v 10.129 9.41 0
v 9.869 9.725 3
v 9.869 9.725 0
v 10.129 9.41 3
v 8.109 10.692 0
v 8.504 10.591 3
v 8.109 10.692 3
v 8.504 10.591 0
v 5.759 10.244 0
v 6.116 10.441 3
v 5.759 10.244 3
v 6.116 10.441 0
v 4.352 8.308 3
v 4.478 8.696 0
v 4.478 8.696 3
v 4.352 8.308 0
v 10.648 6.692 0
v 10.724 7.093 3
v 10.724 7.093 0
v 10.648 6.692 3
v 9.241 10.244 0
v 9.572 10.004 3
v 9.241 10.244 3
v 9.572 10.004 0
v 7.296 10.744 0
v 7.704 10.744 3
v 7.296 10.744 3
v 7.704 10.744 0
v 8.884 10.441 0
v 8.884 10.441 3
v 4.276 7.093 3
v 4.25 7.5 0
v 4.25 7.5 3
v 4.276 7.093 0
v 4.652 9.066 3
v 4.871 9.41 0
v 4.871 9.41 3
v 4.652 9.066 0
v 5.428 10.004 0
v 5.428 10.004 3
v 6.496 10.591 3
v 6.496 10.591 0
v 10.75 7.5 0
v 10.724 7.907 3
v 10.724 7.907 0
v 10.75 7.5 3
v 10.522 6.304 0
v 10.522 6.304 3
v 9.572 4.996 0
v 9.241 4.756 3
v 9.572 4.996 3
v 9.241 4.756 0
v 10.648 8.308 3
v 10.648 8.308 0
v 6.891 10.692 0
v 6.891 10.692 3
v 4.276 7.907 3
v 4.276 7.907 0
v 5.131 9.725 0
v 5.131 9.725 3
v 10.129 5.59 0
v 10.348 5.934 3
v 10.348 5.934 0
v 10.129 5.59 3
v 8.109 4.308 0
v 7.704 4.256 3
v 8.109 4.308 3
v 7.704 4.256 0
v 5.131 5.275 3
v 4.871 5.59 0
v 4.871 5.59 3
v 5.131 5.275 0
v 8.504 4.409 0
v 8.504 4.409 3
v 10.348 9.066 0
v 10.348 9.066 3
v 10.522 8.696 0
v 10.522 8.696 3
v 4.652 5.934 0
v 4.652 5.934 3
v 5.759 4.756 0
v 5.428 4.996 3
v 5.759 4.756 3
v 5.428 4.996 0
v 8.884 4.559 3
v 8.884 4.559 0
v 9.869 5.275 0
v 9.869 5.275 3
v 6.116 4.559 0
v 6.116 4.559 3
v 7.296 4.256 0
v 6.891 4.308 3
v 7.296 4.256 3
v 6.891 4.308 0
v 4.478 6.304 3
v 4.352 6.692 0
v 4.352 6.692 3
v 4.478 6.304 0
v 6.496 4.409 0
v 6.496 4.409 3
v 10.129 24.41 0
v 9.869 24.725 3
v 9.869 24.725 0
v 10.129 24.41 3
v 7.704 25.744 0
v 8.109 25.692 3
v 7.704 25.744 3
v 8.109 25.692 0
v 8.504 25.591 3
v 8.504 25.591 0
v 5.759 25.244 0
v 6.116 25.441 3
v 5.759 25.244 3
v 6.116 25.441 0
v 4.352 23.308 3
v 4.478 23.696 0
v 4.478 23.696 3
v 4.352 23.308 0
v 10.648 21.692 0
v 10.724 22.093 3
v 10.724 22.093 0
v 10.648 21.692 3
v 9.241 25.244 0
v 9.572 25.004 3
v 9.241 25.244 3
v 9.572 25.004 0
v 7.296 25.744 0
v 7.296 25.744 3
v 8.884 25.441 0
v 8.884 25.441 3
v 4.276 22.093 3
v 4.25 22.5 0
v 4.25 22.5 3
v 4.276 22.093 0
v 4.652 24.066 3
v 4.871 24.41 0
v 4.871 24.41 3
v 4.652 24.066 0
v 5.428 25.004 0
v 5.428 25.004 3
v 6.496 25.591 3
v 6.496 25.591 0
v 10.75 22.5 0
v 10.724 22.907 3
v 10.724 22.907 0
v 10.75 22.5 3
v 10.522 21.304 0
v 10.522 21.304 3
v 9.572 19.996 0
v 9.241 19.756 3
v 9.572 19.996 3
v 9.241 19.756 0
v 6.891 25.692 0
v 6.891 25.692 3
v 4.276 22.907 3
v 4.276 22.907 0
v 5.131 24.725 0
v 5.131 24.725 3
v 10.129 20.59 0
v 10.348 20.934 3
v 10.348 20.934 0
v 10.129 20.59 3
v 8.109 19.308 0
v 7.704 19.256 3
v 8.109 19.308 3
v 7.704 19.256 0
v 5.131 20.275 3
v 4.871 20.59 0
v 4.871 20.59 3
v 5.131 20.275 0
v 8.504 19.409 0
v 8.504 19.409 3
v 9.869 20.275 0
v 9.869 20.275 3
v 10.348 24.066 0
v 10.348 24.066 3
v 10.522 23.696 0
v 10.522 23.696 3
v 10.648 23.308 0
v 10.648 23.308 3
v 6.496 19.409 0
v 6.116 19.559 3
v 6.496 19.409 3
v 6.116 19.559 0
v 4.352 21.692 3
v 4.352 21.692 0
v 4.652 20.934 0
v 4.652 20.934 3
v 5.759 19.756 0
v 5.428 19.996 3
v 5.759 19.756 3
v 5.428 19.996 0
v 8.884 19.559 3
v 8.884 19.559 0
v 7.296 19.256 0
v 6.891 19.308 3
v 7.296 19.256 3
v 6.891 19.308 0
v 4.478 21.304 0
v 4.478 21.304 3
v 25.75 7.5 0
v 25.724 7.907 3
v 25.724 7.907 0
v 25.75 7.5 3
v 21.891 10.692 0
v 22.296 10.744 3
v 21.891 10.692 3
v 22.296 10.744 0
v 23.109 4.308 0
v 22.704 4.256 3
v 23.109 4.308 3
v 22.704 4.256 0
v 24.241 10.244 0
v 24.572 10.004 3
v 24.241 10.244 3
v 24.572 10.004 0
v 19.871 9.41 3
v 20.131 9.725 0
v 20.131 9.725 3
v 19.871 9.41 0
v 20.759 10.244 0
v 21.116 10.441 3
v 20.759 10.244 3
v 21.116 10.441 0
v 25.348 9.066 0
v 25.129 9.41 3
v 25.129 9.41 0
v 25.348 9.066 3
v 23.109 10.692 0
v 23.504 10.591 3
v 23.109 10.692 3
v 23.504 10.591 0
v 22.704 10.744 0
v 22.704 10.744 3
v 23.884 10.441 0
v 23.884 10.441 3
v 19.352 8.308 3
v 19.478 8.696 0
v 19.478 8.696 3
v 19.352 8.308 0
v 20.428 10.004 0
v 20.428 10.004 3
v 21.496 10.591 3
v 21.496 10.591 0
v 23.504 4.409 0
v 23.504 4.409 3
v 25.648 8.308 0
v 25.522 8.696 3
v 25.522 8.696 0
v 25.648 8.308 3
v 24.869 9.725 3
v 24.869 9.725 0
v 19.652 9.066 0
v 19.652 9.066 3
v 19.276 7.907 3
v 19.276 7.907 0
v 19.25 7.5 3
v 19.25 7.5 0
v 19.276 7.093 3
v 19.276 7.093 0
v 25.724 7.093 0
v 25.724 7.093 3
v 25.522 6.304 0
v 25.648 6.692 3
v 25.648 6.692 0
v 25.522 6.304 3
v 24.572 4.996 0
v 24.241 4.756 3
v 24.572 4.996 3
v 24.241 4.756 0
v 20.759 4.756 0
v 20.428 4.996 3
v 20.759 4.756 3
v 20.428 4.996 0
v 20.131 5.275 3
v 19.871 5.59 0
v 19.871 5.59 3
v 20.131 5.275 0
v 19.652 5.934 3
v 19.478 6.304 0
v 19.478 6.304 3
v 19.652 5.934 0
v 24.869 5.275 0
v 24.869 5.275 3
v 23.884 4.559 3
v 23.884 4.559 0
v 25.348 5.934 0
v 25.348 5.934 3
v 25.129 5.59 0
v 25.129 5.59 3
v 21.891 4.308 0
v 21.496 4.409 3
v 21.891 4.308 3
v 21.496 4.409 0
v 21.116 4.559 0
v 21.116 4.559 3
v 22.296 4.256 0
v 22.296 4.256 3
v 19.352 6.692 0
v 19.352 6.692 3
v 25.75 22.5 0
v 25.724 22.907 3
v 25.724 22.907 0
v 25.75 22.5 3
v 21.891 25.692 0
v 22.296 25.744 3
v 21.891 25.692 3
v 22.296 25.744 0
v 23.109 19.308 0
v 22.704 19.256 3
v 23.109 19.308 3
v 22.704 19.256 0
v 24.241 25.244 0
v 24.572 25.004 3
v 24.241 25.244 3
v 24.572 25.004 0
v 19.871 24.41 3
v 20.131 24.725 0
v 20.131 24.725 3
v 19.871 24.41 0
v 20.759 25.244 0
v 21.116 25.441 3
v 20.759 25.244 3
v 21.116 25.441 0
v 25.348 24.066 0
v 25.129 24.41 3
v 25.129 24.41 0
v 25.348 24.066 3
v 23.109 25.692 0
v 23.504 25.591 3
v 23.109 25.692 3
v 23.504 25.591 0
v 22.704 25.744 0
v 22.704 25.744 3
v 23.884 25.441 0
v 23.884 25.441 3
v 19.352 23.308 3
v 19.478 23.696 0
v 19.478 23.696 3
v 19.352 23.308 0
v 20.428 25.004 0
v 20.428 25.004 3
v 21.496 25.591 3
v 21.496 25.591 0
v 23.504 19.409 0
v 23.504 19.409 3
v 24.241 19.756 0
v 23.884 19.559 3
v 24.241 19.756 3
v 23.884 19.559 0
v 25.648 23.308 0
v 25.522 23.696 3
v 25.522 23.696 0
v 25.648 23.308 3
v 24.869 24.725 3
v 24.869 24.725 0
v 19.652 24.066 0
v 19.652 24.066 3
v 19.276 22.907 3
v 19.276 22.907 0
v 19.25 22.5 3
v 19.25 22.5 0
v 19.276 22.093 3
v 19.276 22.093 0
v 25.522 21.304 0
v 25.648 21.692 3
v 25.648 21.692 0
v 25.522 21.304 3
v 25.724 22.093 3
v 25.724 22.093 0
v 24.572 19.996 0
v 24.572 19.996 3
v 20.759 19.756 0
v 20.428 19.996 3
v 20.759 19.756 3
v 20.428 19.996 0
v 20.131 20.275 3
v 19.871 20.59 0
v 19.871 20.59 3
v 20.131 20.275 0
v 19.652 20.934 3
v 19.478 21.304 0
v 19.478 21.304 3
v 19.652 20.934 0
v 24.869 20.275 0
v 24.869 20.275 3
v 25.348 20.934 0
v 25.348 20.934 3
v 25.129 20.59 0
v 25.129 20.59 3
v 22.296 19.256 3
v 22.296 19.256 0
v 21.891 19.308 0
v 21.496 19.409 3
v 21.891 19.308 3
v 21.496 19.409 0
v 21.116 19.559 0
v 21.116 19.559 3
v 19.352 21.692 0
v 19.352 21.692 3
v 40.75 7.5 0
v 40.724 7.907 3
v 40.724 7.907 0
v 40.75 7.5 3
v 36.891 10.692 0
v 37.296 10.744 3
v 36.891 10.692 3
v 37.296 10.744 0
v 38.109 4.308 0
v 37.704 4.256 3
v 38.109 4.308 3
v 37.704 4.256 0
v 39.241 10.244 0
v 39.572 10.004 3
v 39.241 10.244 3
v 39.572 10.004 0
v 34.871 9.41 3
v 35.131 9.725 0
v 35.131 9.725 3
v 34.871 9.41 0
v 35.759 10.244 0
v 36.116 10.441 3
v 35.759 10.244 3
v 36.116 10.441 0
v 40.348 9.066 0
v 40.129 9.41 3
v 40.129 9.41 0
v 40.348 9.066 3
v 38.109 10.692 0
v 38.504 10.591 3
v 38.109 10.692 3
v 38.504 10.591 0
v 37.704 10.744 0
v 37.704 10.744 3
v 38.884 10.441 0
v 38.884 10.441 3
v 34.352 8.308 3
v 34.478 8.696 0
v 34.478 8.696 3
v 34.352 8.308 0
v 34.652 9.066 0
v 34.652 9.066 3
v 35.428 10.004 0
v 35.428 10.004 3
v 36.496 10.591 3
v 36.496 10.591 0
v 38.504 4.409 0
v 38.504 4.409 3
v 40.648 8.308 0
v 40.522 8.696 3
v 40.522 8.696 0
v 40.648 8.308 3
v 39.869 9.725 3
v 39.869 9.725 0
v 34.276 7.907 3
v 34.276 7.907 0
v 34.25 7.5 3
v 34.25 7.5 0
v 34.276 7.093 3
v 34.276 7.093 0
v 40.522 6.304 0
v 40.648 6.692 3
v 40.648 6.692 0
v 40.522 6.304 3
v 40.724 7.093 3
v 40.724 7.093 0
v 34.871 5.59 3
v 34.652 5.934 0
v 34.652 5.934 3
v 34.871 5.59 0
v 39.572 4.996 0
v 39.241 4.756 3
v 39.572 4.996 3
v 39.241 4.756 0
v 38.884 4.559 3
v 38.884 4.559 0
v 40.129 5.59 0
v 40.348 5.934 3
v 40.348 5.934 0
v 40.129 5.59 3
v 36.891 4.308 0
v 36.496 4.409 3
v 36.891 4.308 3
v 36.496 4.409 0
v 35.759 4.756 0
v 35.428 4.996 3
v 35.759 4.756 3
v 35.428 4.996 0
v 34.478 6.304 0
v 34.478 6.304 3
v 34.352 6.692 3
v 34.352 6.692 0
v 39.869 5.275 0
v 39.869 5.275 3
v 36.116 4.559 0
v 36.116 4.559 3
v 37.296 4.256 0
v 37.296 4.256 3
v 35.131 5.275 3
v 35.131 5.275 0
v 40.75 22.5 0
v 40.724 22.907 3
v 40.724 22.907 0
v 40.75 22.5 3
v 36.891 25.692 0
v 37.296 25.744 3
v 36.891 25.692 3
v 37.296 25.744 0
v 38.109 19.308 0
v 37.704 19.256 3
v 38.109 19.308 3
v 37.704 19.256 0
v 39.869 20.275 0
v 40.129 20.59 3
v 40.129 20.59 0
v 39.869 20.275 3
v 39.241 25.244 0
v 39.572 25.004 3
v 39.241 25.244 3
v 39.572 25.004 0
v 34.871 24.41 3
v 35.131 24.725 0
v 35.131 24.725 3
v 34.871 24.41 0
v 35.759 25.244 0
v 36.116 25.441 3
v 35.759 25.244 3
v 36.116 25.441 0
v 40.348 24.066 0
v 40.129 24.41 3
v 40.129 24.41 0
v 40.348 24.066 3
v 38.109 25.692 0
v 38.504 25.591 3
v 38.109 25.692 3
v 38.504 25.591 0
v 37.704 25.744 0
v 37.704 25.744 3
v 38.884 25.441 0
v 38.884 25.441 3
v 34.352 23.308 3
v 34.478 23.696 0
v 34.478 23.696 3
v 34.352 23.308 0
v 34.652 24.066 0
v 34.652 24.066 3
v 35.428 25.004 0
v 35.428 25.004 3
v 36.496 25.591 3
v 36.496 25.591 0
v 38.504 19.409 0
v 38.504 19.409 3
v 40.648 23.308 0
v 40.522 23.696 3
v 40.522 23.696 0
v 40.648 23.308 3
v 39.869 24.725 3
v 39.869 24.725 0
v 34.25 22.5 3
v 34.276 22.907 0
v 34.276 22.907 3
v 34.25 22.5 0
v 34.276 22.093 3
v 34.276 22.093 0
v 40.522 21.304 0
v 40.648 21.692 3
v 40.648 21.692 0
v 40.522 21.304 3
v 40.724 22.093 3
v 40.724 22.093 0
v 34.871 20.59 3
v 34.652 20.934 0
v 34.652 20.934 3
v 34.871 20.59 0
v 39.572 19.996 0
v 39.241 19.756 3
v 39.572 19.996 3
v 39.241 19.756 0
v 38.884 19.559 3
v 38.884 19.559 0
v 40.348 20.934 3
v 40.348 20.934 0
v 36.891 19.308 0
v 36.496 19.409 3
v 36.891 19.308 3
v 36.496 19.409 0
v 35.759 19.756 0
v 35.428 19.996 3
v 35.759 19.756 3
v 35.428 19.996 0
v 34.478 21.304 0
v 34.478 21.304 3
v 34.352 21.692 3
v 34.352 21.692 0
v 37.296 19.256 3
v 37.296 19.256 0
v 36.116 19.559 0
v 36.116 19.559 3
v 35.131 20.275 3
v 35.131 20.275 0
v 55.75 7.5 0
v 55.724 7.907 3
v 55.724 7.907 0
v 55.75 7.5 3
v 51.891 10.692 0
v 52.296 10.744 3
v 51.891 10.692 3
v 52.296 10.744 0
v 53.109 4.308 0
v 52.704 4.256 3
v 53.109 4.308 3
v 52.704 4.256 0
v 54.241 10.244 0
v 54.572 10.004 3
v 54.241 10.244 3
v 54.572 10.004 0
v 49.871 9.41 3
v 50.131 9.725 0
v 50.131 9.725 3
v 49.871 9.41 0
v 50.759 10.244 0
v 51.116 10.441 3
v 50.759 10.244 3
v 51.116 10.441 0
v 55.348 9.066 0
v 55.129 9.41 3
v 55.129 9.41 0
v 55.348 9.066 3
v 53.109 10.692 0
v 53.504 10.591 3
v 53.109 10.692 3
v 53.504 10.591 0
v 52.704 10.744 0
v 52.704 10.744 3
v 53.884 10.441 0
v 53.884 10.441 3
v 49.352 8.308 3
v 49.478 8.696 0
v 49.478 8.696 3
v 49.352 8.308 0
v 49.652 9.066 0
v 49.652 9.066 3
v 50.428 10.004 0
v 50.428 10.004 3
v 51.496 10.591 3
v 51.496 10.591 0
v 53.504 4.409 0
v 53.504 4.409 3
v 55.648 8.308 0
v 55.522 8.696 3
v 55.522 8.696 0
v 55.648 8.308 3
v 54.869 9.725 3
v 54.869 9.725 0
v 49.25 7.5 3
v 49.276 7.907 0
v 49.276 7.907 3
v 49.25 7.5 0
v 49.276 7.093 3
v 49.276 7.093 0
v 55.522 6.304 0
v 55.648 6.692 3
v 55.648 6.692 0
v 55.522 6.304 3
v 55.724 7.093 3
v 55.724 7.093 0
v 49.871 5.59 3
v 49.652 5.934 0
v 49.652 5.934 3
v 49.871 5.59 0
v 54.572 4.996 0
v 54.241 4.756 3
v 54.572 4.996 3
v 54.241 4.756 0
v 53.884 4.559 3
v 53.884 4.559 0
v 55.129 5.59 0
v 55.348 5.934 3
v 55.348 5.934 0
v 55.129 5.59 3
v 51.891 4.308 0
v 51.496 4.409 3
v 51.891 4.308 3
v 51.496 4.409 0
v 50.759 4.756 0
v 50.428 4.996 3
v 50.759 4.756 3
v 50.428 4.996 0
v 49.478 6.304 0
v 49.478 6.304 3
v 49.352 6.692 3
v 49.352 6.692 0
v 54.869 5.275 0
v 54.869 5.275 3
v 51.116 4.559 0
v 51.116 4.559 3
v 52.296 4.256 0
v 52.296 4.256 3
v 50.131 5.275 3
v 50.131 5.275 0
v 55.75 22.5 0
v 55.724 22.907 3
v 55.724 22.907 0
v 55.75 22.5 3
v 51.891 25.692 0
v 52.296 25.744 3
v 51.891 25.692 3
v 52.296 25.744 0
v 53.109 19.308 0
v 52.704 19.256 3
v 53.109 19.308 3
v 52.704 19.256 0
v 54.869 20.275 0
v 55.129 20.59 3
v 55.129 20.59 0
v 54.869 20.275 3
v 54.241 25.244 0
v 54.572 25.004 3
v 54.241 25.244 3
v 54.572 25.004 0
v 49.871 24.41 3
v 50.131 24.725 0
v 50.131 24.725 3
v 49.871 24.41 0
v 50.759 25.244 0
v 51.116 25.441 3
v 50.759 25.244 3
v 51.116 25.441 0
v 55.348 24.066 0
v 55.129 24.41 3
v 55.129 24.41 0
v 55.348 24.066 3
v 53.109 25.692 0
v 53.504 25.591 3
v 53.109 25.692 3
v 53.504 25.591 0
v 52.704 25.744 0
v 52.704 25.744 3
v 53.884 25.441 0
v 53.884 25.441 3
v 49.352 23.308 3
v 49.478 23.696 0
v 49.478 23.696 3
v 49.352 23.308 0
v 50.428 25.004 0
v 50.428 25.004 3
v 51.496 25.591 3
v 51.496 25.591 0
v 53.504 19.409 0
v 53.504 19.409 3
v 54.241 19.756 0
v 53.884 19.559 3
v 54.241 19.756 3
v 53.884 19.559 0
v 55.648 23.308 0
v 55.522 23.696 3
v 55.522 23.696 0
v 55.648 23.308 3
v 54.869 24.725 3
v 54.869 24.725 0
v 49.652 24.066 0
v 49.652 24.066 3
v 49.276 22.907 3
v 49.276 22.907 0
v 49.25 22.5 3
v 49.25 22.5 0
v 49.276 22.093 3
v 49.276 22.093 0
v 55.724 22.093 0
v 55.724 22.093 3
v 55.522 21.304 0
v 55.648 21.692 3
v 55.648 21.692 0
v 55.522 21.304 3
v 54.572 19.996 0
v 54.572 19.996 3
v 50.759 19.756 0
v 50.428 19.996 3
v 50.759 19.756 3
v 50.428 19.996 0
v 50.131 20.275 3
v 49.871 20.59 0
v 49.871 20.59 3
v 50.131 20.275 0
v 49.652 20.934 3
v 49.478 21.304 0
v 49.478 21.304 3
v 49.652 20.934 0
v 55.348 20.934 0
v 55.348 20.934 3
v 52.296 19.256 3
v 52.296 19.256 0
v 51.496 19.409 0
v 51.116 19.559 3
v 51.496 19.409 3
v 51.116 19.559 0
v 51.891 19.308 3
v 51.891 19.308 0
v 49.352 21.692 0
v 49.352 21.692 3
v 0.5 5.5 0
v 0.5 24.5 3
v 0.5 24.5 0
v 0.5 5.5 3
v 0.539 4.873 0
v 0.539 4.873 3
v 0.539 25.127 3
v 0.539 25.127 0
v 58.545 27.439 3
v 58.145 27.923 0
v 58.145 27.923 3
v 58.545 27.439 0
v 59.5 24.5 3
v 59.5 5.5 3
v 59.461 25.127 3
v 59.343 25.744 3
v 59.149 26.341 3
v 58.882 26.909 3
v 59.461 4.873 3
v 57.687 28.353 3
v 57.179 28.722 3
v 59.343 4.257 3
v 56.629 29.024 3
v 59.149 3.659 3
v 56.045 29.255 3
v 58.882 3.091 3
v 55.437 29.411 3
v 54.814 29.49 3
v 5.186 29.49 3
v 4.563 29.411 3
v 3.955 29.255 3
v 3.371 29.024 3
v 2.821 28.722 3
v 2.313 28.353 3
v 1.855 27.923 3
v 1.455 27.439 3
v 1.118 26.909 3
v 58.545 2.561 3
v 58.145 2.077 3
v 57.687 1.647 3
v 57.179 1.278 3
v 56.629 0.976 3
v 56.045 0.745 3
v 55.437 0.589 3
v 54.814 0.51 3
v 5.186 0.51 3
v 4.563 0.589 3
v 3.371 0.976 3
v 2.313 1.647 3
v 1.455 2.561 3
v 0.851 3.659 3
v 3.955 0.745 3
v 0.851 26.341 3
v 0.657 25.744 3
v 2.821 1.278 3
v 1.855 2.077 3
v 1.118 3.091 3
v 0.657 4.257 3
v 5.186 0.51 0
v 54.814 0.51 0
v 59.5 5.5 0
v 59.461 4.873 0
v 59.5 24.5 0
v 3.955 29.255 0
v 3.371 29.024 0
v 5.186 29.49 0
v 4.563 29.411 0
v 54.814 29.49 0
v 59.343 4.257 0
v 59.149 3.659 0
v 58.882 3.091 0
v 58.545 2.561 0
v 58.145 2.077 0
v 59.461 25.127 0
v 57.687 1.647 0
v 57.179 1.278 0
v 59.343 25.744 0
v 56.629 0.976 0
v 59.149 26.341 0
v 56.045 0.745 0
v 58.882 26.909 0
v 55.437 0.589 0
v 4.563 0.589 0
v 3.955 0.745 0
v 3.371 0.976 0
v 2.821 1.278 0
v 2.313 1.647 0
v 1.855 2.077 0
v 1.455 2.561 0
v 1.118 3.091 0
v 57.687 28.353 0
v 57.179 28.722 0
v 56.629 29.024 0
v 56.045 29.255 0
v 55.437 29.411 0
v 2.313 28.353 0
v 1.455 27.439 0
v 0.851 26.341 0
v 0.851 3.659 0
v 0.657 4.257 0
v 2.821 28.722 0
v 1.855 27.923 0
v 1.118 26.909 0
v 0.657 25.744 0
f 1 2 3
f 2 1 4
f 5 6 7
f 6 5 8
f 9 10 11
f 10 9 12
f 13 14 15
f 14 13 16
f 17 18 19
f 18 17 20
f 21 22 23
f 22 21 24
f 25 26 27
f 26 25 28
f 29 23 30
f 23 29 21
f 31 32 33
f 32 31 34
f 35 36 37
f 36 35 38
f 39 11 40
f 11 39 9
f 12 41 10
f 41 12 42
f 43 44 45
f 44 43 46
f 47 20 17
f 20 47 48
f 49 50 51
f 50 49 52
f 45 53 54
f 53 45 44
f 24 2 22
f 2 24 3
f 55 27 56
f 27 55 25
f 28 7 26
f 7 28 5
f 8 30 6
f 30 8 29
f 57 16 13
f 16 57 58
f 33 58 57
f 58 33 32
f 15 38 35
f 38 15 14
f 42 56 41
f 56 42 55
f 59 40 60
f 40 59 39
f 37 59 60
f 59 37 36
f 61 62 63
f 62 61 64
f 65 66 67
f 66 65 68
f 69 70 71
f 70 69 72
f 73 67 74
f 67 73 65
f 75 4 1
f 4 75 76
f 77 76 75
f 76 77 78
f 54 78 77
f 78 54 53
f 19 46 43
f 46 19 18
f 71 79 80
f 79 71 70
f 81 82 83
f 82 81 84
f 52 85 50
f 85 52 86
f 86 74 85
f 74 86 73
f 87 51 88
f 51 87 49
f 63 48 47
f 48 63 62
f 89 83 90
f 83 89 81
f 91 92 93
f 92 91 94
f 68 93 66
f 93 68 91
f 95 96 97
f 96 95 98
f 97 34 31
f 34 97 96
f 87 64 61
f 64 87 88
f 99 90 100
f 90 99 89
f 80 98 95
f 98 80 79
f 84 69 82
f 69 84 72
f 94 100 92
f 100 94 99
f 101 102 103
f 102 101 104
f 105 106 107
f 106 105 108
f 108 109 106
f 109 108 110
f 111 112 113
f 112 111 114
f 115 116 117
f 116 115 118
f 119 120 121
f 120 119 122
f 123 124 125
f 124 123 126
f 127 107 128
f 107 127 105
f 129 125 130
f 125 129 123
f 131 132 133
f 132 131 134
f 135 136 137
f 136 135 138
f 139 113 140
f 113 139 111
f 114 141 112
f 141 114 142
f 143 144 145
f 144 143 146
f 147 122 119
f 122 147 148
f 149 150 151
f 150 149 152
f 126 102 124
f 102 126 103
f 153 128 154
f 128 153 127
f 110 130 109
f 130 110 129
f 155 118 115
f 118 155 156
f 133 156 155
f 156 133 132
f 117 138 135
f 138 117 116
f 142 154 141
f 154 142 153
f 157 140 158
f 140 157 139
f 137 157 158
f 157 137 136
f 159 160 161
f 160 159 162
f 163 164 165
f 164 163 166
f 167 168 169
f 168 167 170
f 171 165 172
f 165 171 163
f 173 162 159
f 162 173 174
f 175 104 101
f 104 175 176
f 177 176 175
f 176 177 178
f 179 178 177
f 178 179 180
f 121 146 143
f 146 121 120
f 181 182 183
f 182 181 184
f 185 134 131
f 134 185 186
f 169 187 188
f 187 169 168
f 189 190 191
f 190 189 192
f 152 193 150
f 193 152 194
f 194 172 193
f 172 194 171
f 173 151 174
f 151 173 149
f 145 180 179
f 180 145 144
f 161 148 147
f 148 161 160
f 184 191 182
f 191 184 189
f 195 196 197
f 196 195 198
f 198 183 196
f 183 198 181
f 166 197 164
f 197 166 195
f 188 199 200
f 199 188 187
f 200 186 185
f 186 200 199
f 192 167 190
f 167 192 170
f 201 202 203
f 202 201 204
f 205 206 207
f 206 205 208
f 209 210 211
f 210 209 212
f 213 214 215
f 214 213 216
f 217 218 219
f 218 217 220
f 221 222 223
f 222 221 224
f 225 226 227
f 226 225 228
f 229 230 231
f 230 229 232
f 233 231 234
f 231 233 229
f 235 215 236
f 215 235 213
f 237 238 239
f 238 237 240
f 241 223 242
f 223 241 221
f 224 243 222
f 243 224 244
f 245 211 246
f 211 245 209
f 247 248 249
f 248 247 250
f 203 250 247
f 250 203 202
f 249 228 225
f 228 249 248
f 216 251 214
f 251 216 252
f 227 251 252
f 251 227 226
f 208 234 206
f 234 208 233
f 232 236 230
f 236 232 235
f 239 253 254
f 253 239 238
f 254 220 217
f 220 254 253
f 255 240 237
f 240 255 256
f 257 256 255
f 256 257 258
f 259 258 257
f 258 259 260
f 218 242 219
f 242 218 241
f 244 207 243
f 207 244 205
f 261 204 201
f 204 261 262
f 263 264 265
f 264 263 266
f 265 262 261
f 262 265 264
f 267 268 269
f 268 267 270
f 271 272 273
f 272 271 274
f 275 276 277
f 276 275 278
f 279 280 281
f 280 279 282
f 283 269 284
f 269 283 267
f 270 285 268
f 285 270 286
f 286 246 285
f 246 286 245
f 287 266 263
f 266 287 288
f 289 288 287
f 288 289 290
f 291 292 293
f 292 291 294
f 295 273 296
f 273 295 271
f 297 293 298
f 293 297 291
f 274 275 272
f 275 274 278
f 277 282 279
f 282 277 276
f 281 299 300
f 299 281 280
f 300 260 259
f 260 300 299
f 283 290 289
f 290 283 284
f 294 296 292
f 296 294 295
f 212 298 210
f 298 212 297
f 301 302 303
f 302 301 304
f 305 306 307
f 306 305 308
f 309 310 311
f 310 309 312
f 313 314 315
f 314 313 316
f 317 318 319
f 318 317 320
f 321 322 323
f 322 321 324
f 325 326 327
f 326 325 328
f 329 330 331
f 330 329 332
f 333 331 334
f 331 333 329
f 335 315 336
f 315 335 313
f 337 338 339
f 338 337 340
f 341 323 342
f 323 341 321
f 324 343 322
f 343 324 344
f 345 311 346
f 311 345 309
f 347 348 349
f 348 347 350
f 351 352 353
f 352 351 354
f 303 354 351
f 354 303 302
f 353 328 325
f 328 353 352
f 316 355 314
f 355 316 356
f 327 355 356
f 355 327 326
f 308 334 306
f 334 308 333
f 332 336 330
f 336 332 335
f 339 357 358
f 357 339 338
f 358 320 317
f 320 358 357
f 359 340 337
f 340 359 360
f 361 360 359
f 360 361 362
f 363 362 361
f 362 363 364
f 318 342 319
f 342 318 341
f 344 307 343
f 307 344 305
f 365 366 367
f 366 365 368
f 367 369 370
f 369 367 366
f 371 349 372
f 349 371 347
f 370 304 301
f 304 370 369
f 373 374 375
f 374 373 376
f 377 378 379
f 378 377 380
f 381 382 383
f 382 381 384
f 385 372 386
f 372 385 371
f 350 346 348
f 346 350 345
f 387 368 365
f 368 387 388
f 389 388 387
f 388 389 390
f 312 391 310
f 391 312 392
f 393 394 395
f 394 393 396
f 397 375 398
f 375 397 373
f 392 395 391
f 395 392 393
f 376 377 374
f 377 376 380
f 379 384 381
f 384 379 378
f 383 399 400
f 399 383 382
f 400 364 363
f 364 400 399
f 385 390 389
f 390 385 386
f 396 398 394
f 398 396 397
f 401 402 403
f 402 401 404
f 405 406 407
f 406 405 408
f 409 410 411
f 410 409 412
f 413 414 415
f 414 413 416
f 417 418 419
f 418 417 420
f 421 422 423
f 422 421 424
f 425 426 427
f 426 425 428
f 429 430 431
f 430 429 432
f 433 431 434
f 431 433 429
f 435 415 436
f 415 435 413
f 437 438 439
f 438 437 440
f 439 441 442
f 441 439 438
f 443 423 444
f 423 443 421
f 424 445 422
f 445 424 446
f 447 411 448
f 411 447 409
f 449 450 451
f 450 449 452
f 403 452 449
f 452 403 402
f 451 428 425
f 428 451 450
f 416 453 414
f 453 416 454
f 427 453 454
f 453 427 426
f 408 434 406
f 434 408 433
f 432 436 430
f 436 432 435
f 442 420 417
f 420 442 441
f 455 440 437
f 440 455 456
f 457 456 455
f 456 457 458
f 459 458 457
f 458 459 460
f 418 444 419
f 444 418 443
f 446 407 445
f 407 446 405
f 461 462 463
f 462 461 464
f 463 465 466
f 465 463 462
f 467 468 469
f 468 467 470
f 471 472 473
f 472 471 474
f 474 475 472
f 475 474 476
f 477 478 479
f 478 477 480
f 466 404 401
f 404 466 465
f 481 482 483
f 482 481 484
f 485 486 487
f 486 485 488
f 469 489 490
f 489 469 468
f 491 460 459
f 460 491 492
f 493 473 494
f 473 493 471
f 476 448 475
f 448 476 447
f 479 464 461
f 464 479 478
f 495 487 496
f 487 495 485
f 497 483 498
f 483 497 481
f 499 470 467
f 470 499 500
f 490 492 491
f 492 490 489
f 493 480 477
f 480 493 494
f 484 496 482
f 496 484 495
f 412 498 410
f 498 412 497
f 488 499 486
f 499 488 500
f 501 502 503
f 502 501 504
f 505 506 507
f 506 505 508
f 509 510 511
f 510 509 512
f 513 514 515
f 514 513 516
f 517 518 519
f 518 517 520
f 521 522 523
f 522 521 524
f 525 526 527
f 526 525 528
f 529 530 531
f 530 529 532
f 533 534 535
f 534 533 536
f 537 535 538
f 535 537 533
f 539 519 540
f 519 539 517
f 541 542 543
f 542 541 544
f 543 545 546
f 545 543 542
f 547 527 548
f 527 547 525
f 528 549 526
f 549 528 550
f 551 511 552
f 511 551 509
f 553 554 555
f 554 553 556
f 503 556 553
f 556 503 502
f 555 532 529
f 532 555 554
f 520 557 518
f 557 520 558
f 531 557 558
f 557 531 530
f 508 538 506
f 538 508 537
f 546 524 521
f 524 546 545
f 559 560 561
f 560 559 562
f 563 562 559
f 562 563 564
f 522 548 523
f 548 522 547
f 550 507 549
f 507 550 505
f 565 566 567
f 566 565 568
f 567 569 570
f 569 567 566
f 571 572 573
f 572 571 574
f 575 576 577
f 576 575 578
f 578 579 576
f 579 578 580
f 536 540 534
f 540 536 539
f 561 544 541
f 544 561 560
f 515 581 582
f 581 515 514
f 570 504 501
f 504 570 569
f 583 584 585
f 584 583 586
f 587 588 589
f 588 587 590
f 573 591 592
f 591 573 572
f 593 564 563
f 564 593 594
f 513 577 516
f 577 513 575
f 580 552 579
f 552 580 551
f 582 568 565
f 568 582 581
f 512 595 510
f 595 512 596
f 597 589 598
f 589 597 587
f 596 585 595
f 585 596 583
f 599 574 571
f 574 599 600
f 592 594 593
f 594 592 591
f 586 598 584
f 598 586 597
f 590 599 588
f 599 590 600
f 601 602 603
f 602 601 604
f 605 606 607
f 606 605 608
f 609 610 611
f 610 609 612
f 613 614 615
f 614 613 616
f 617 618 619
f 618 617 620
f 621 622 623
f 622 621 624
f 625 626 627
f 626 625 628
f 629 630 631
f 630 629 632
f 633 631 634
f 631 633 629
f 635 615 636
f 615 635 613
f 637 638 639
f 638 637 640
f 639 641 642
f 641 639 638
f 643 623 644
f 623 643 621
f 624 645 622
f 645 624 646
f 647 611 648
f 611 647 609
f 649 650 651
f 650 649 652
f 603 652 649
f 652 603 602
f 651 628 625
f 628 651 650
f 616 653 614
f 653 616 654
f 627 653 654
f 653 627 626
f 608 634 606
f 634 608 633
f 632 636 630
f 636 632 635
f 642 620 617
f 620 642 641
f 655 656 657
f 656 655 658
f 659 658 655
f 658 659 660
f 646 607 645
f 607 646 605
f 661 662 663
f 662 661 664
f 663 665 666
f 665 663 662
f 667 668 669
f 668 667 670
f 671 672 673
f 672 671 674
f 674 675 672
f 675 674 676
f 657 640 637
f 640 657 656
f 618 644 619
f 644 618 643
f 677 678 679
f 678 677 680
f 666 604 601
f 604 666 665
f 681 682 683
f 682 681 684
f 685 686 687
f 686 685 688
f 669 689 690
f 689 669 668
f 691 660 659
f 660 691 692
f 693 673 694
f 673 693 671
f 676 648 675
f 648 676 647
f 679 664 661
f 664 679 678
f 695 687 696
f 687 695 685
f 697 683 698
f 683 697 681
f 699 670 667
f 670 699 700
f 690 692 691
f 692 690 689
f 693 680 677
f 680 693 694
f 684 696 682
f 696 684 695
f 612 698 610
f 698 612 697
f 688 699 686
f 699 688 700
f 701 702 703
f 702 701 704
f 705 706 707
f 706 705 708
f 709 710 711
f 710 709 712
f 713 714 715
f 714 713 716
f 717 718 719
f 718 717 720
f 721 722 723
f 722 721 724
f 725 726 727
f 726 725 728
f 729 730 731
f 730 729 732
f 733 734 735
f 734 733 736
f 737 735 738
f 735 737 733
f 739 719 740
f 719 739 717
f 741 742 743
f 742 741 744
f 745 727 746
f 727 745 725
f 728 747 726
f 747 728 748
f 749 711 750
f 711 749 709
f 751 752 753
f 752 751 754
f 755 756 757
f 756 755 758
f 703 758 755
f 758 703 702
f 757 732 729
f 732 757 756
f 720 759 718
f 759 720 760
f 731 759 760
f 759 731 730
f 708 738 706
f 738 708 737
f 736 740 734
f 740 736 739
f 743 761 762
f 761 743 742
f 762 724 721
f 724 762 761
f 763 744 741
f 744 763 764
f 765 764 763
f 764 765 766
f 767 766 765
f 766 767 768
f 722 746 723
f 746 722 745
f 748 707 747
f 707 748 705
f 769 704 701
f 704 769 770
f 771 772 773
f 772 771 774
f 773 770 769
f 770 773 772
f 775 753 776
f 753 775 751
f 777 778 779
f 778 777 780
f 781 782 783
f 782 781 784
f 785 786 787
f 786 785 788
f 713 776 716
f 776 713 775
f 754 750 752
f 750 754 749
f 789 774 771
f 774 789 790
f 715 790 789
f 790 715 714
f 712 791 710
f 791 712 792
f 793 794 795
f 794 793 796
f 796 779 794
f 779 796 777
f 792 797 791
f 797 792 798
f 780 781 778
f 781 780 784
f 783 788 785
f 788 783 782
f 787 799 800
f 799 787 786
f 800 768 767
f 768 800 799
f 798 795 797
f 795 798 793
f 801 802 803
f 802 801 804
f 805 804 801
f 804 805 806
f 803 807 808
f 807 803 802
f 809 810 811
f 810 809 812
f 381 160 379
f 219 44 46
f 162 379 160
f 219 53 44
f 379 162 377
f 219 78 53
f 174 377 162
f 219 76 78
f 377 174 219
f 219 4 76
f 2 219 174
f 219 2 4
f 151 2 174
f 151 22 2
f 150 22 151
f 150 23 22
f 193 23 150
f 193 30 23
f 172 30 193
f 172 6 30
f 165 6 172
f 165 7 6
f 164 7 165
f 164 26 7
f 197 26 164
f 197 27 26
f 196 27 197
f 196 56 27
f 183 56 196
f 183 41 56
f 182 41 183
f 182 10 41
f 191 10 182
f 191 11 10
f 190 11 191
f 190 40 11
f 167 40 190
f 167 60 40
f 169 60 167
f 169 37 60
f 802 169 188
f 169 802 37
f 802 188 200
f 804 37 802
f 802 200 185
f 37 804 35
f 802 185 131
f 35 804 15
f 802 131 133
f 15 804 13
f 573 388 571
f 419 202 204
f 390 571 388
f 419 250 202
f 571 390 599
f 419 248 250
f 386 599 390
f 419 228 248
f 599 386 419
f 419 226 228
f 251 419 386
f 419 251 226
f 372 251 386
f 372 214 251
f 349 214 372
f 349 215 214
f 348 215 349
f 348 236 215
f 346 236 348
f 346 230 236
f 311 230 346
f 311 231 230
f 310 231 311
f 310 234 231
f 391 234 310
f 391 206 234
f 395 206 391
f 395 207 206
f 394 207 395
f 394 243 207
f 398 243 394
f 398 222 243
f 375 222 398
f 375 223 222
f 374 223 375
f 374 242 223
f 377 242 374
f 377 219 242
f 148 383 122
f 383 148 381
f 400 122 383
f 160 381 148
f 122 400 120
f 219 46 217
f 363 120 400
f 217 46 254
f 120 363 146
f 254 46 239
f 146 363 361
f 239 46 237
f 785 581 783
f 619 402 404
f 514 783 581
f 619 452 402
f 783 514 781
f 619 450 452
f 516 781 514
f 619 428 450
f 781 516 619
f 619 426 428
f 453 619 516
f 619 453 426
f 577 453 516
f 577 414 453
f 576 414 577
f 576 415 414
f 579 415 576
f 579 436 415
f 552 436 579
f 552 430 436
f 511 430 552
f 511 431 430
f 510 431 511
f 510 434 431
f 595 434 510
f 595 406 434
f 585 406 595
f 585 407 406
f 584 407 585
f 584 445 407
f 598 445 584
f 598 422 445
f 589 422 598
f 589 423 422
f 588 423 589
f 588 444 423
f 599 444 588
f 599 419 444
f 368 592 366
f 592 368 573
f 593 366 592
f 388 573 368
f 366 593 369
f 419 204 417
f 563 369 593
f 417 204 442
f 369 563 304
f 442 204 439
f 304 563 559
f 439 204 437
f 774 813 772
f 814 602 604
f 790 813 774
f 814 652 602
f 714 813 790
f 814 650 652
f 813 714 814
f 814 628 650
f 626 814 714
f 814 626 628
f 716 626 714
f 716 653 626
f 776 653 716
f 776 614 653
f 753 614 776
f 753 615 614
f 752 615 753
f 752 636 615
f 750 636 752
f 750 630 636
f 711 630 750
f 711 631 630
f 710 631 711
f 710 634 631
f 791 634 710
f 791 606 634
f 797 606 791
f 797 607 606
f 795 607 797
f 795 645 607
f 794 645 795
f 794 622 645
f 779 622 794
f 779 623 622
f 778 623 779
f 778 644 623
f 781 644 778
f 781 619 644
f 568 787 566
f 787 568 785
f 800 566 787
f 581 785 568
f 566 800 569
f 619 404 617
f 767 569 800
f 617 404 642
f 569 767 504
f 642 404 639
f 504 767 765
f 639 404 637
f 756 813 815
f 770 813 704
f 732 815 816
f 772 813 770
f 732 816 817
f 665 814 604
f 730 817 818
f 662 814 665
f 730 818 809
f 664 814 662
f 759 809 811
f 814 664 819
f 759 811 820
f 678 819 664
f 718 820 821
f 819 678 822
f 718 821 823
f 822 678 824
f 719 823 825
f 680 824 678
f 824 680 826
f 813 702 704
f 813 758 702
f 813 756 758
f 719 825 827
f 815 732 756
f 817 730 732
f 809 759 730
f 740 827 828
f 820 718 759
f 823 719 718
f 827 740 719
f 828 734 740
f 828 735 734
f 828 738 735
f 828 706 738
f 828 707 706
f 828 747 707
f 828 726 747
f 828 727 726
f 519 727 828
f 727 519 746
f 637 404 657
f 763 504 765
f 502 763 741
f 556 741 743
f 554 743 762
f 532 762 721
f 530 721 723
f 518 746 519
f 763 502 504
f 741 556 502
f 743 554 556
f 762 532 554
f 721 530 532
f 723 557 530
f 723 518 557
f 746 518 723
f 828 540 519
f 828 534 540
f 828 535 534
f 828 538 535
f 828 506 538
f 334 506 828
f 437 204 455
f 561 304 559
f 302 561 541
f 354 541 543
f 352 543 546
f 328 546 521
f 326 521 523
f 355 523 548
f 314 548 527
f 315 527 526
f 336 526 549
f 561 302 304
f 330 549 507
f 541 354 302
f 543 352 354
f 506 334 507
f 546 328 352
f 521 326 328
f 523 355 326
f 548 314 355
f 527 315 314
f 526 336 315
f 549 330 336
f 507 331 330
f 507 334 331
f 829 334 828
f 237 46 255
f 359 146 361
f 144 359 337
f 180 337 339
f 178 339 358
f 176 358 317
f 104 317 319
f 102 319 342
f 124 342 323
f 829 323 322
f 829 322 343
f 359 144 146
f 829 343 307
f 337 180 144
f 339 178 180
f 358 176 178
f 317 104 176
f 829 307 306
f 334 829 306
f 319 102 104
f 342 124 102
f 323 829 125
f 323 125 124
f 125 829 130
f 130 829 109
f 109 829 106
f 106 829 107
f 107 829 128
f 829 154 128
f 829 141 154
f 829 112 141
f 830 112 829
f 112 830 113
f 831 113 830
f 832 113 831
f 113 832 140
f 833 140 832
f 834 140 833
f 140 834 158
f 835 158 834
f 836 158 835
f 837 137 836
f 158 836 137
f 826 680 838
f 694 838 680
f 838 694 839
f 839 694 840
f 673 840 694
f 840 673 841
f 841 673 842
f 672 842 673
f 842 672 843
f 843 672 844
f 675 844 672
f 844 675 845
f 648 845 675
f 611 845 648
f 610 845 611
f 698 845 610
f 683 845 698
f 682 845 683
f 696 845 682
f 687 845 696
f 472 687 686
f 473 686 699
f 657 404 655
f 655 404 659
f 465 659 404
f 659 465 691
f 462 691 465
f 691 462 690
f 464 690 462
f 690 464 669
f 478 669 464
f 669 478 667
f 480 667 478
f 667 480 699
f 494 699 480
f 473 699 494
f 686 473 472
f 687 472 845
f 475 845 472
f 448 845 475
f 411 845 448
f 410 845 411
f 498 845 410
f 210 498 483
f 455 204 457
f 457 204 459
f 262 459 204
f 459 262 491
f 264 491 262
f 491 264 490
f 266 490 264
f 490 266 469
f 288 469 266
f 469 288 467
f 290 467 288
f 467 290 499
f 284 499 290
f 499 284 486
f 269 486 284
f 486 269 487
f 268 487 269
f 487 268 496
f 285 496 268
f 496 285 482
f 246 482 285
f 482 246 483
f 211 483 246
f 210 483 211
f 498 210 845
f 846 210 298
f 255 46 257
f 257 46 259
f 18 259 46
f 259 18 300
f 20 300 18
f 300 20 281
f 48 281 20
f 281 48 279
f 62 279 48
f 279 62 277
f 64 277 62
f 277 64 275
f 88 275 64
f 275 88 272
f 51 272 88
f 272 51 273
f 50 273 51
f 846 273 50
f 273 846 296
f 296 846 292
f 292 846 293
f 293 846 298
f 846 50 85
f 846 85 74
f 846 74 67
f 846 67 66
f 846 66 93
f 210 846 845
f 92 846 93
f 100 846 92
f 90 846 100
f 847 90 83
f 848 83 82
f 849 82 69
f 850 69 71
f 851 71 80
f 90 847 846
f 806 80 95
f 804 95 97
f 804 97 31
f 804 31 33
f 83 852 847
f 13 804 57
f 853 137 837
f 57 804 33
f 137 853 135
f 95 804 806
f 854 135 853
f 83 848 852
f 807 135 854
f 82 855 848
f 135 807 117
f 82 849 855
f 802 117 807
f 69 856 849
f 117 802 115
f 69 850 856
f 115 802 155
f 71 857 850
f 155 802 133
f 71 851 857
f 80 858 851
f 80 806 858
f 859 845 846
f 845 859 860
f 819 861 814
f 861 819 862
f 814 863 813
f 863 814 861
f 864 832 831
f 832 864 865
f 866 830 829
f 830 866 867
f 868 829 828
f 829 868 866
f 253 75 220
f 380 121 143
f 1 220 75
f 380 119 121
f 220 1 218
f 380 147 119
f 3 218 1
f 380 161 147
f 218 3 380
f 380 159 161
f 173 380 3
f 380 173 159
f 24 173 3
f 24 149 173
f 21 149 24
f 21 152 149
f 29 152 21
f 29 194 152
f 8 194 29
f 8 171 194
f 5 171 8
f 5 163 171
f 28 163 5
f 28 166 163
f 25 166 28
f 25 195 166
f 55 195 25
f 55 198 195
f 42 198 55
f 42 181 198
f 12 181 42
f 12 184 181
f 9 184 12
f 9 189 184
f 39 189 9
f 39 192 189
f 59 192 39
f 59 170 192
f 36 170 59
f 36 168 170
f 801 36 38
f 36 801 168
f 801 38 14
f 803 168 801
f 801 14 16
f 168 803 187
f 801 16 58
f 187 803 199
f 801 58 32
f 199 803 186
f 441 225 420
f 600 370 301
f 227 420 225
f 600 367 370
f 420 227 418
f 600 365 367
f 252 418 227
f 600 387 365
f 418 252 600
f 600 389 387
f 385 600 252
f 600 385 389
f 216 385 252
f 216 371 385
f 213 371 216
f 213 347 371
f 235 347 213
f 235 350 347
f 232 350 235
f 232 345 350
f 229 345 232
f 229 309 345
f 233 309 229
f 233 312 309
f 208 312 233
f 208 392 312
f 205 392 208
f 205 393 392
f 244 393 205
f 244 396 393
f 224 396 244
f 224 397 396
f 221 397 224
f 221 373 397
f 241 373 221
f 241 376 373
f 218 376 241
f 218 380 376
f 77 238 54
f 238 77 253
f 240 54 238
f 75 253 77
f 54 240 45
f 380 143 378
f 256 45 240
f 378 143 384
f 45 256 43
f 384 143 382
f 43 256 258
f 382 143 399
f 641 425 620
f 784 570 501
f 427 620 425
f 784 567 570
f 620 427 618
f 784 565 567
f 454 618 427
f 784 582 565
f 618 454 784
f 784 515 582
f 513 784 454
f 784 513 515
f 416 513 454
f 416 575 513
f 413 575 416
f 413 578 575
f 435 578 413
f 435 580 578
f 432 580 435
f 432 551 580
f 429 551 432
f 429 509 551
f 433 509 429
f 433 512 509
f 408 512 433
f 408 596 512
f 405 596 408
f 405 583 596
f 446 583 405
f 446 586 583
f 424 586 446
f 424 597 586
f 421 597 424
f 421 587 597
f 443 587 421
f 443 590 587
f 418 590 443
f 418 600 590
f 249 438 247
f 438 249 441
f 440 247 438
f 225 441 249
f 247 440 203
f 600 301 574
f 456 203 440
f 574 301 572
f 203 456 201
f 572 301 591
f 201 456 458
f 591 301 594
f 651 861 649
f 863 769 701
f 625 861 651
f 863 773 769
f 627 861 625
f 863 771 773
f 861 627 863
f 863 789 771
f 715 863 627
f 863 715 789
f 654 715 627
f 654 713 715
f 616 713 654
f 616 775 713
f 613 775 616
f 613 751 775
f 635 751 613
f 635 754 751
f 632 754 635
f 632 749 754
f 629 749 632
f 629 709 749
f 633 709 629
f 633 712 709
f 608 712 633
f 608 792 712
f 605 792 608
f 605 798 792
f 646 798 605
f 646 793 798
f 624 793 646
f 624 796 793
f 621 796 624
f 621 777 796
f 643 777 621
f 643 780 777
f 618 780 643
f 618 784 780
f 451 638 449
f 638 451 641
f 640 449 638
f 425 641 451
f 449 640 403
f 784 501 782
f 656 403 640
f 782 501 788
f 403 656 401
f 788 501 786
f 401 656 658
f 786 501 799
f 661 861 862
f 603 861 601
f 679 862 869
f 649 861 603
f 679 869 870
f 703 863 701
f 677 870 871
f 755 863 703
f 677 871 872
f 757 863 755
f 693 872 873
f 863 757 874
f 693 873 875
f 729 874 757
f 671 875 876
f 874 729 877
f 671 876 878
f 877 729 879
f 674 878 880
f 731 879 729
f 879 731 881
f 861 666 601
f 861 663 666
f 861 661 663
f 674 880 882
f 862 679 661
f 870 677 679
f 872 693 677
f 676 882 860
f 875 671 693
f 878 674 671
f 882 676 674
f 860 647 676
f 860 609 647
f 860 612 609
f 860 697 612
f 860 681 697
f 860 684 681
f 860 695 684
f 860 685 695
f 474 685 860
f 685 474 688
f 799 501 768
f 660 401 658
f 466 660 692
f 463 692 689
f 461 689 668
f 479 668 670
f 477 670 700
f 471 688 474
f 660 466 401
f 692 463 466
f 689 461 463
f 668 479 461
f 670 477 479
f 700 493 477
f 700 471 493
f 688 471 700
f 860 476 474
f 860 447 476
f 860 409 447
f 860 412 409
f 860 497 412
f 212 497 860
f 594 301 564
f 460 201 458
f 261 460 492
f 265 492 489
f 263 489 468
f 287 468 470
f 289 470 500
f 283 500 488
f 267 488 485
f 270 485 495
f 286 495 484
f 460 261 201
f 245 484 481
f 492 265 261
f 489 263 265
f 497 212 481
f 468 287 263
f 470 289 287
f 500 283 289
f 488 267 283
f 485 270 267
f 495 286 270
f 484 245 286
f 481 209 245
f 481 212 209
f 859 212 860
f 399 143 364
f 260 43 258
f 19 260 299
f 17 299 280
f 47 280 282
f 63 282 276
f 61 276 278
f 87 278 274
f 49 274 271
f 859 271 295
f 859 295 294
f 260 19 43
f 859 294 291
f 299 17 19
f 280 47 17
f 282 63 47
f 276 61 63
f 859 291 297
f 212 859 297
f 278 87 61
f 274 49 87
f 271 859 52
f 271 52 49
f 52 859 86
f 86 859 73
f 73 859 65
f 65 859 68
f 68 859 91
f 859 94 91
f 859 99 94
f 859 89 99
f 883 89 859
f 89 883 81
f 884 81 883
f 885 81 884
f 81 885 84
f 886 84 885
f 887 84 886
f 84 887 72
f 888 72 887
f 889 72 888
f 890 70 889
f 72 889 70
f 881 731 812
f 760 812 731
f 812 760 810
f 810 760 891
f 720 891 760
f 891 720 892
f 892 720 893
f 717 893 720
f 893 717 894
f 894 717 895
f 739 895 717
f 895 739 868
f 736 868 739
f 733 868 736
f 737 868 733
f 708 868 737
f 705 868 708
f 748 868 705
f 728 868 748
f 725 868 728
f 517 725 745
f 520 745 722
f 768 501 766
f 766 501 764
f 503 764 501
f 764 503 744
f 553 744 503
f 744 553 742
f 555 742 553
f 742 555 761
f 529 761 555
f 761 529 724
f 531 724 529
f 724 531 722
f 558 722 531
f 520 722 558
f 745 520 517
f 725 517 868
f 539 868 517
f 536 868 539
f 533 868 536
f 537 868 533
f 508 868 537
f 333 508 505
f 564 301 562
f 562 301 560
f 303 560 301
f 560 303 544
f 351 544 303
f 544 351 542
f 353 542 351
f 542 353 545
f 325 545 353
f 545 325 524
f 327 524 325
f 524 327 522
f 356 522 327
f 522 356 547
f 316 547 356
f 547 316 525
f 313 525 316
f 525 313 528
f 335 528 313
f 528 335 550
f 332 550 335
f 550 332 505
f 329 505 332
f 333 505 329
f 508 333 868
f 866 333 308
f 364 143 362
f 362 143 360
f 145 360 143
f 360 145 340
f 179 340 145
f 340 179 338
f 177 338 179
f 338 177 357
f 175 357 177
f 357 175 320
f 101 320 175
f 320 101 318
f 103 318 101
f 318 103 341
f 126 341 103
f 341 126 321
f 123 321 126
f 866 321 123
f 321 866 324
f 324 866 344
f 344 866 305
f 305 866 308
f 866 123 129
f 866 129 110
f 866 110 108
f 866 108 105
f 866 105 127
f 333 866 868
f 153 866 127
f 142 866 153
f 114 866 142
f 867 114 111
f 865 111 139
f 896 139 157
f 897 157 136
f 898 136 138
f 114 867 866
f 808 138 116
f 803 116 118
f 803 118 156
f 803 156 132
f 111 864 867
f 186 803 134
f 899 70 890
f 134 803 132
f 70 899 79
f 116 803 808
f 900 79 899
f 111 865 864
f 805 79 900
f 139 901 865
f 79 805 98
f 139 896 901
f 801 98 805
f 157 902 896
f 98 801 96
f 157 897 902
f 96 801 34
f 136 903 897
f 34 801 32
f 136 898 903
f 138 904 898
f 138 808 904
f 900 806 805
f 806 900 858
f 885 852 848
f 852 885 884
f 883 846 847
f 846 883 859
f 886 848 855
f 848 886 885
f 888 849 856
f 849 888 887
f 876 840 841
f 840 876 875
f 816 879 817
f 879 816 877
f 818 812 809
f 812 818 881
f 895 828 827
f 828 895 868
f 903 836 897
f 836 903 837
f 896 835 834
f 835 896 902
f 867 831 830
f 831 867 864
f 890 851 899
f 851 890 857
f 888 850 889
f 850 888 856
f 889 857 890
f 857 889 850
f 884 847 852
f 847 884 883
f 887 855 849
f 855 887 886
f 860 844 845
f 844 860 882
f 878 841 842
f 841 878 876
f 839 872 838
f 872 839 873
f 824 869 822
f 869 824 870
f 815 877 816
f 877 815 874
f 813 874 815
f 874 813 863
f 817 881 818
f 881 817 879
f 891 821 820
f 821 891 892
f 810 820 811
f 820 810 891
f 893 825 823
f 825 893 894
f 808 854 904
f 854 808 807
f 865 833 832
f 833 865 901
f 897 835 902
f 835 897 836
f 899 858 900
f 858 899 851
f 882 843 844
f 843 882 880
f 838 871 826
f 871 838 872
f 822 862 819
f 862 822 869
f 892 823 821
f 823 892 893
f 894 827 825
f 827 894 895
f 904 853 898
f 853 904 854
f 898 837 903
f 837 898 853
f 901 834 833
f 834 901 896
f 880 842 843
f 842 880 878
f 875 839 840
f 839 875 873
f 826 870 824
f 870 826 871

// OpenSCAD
// Generated by SolidPython 1.1.3 on 2023-01-09 14:56:21
$fn = 50;


difference() {
	union() {
		translate(v = [30.0000000000, 15.0000000000, 0]) {
			rotate(a = [0, 0, 0]) {
				hull() {
					translate(v = [-24.5000000000, 9.5000000000, 0]) {
						rotate(a = [0, 0, 0]) {
							translate(v = [0, 0, 0]) {
								rotate(a = [0, 0, 0]) {
									cylinder(h = 3, r = 5);
								}
							}
						}
					}
					translate(v = [24.5000000000, 9.5000000000, 0]) {
						rotate(a = [0, 0, 0]) {
							translate(v = [0, 0, 0]) {
								rotate(a = [0, 0, 0]) {
									cylinder(h = 3, r = 5);
								}
							}
						}
					}
					translate(v = [-24.5000000000, -9.5000000000, 0]) {
						rotate(a = [0, 0, 0]) {
							translate(v = [0, 0, 0]) {
								rotate(a = [0, 0, 0]) {
									cylinder(h = 3, r = 5);
								}
							}
						}
					}
					translate(v = [24.5000000000, -9.5000000000, 0]) {
						rotate(a = [0, 0, 0]) {
							translate(v = [0, 0, 0]) {
								rotate(a = [0, 0, 0]) {
									cylinder(h = 3, r = 5);
								}
							}
						}
					}
				}
			}
		}
	}
	union() {
		translate(v = [7.5000000000, 7.5000000000, 0]) {
			rotate(a = [0, 0, 0]) {
				translate(v = [0, 0, -50]) {
					rotate(a = [0, 0, 0]) {
						cylinder(h = 100, r = 3.2500000000);
					}
				}
			}
		}
		translate(v = [7.5000000000, 22.5000000000, 0]) {
			rotate(a = [0, 0, 0]) {
				translate(v = [0, 0, -50]) {
					rotate(a = [0, 0, 0]) {
						cylinder(h = 100, r = 3.2500000000);
					}
				}
			}
		}
		translate(v = [22.5000000000, 7.5000000000, 0]) {
			rotate(a = [0, 0, 0]) {
				translate(v = [0, 0, -50]) {
					rotate(a = [0, 0, 0]) {
						cylinder(h = 100, r = 3.2500000000);
					}
				}
			}
		}
		translate(v = [22.5000000000, 22.5000000000, 0]) {
			rotate(a = [0, 0, 0]) {
				translate(v = [0, 0, -50]) {
					rotate(a = [0, 0, 0]) {
						cylinder(h = 100, r = 3.2500000000);
					}
				}
			}
		}
		translate(v = [37.5000000000, 7.5000000000, 0]) {
			rotate(a = [0, 0, 0]) {
				translate(v = [0, 0, -50]) {
					rotate(a = [0, 0, 0]) {
						cylinder(h = 100, r = 3.2500000000);
					}
				}
			}
		}
		translate(v = [37.5000000000, 22.5000000000, 0]) {
			rotate(a = [0, 0, 0]) {
				translate(v = [0, 0, -50]) {
					rotate(a = [0, 0, 0]) {
						cylinder(h = 100, r = 3.2500000000);
					}
				}
			}
		}
		translate(v = [52.5000000000, 7.5000000000, 0]) {
			rotate(a = [0, 0, 0]) {
				translate(v = [0, 0, -50]) {
					rotate(a = [0, 0, 0]) {
						cylinder(h = 100, r = 3.2500000000);
					}
				}
			}
		}
		translate(v = [52.5000000000, 22.5000000000, 0]) {
			rotate(a = [0, 0, 0]) {
				translate(v = [0, 0, -50]) {
					rotate(a = [0, 0, 0]) {
						cylinder(h = 100, r = 3.2500000000);
					}
				}
			}
		}
	}
}
/***********************************************
*********      SolidPython code:      **********
************************************************
 
from solid import *
import os
import subprocess

import oomB

import opsc_library_gen

mode = "laser"
#mode = "3d_print"

defined_objects = {}

radius_dict = {}
countersunk_dict = {}


def set_mode(m):
    global mode
    mode = m
    radius_dict['M6'] = 6.5/2
    radius_dict['M3'] = 3.3/2
    if mode == "laser":
        radius_dict['M6'] = 6/2
        radius_dict['M3'] = 3/2

    countersunk_dict['M3'] = {}
    countersunk_dict['M3']['little_rad'] = radius_dict['M3']
    countersunk_dict['M3']['big_rad'] = (5.5+0.6)/2
    if mode == "laser":
        countersunk_dict['M3']['big_rad'] = (4.75+0.6)/2
        countersunk_dict['M3']['little_rad'] = (4.75+0.6)/2

    countersunk_dict['M3']['height'] = 1.7


def opsc_make_object(filename, objects, save_type="none",resolution=50, layers = 1, tilediff = 200, mode="laser"):
    set_mode(mode)
    save_type = save_type.lower()
    os.makedirs(os.path.dirname(filename), exist_ok=True)
    final_object = opsc_get_object(objects)
    # Save the final object to the specified filename    
    scad_render_to_file(final_object, filename, file_header='$fn = %s;' % resolution, include_orig_code=True)
    if mode == "laser":
        filename_laser = filename.replace(".scad","-flat.scad")
        scad_render_to_file(getLaser(final_object, layers=layers, tilediff=tilediff), filename_laser, file_header='$fn = %s;' % resolution, include_orig_code=True)
        if save_type == "all":
            saveToAll(filename_laser)
        elif save_type == "dxf":
            saveToDxf(filename_laser)
    if save_type == "all":
        saveToAll(filename)
    elif save_type == "dxf":
        saveToDxf(filename)


def opsc_get_object(objects):
    # Create the solidpython objects
    positive_objects = [get_opsc_item(obj) for obj in objects if obj['type'] == 'positive']
    negative_objects = [get_opsc_item(obj) for obj in objects if obj['type'] == 'negative']
    # Union the positive objects
    positive_object = union()(*positive_objects)
    # Union the negative objects
    negative_object = union()(*negative_objects)
    # Create the final object by subtracting the negative objects from the positive objects
    return difference()(positive_object, negative_object)

def get_opsc_item(params):
    # A dictionary to map radius string values to numerical values
    #radius_dict = {'small': 5, 'medium': 10, 'large': 15}
    # An array of function names for basic shapes
    basic_shapes = ['cube', 'sphere', 'cylinder']
    
    # An array of function names for other shapes
    other_shapes = ['hole', 'slot', 'rounded_rectangle', 'countersunk']
    


    # Convert radius to r if present, and remove radius from the params dictionary
    if 'radius' in params:
        if isinstance(params['radius'], str):
            # Use the radius_dict to map the radius string value to a numerical value
            params['r'] = radius_dict[params['radius']]
        else:
            params['r'] = params['radius']
        del params['radius']
    

    # Check if the object type is a basic shape
    if params['shape'] in basic_shapes:
        # Remove shape and unexpected dictionary values
        allowed_keys = {'size', 'r', 'r1', 'r2', 'd', 'h', 'rw', 'rh', 'dw', 'dh'}
        shape_params = {k: v for k, v in params.items() if k in allowed_keys}

        # Call the corresponding function for the shape parameter, using ** notation to pass the shape_params dictionary as keyword arguments
        return get_opsc_transform(params,globals()[params['shape']](**shape_params))
    
    # If the object type is not a basic shape, check if it's a defined object or one of the other shapes
    elif params['shape'] in other_shapes:
        # Call the corresponding function for the shape parameter, passing the params dictionary as an argument
        p2 = copy.deepcopy(params)
        p2["pos"] = [0,0,0]
        return get_opsc_transform(params,globals()[params['shape']](p2))
    
    # If the object is not a basic shape or a defined object, try to import it from a .scad file
    else:
        obj = defined_objects[params['shape']]
        return get_opsc_transform(params,obj)

def get_opsc_transform(params, solid_obj):
    # Rotate the object based on the 'rot' field in the params dictionary, or the 'rotX', 'rotY', and 'rotZ' fields if 'rot' is not present
    rot = params.get('rot', [])
    if rot:
        rotX, rotY, rotZ = rot
    else:
        rotX = params.get('rotX', 0)
        rotY = params.get('rotY', 0)
        rotZ = params.get('rotZ', 0)
    solid_obj = rotate([rotX, rotY, rotZ])(solid_obj)

    # Translate the object based on the 'pos' field in the params dictionary, or the 'x', 'y', and 'z' fields if 'pos' is not present
    pos = params.get('pos', [])
    if pos:
        x, y, z = pos
    else:
        x = params.get('x', 0)
        y = params.get('y', 0)
        z = params.get('z', 0)
    solid_obj = translate([x, y, z])(solid_obj)
    return solid_obj


import random

def opsc_easy_array(type, shape, repeats, pos_start, shift_arr, **kwargs):
    for i in range(0,3):
        repeats.append(1)
        pos_start.append(0)
        shift_arr.append(0)
    return_objects = []

    for x in range(0,repeats[0]):
        for y in range(0,repeats[1]):
            for z in range(0,repeats[2]):
                return_objects.append(opsc_easy(type, shape, pos=[pos_start[0]+x*shift_arr[0],pos_start[1]+y*shift_arr[1],pos_start[2]+z*shift_arr[2]], **kwargs))
    return return_objects                



def opsc_easy(type, shape, **kwargs):
    obj = {
        'type': type,
        'shape': shape
    }
    for param in ['size', 'r', 'r1', 'r2', 'd', 'h', 'rw', 'rh', 'dw', 'dh', 'pos', 'x', 'y', 'z', 'rot', 'rotX', 'rotY', 'rotZ', "w"]:
        if param in kwargs:
            obj[param] = kwargs[param]
    return obj

def hole(params):
    p2 = copy.deepcopy(params)  
    # Check if the radius is a string and replace it with the corresponding value from the dictionary
    if isinstance(p2['r'], str):
        p2['r'] = radius_dict[p2['r']]
    
    # Set the height to 100 if not specified
    if 'h' not in p2:
        p2['h'] = 100
        p2["pos"] = [0,0,-50]
    p2["center"] = True
    # Create the cylinder object
    p2["shape"] = "cylinder"
    p2["type"] = "positive"

    return get_opsc_item(p2)

import copy

def countersunk(params):
    p2 = copy.deepcopy(params)
    counter_rad = p2['r']
    p2['r'] = radius_dict[p2['r']]
    hp = copy.deepcopy(p2)
    hp["type"] = "positive"
    hp["shape"] = "hole"
    del hp["rot"]
    hol = get_opsc_item(hp)
    
    cp = copy.deepcopy(p2)
    cp["h"] = countersunk_dict[counter_rad]["height"]
    cp["r2"] = countersunk_dict[counter_rad]["little_rad"]
    cp["r1"] = countersunk_dict[counter_rad]["big_rad"]
    del cp["r"]
    del cp["rot"]
    cp["type"] = "positive"
    cp["shape"] = "cylinder"
    cp["pos"] = [0,0,0]

    top = get_opsc_item(cp)
    return union()(hol,top)



def slot(params):  
    p2 = copy.deepcopy(params) 
    if isinstance(p2['r'], str):
        p2['r'] = radius_dict[p2['r']]
    p2["type"] = "positive"
    p2["shape"] = "hole"
    del p2["rot"]
    p2["pos"] = [0,0,0]
    left = copy.deepcopy(p2)
    right = copy.deepcopy(p2)
    left["pos"][0] = p2["w"] / 2 - p2["r"] 
    
    right["pos"][0] = -p2["w"] / 2 + p2["r"] 
    pass
    leftObj = get_opsc_item(left)
    rightObj = get_opsc_item(right)
    return hull()(leftObj, rightObj)

def rounded_rectangle(params):   
    p2 = copy.deepcopy(params) 
    p2["h"] = p2["size"][2]
    p2["pos"] = p2.get("pos", [0, 0, 0]) 
    p2["type"] = "positive"
    p2["shape"] = "hole"
    p2["pos"] = [0,0,0]
    
    if 'rot' in p2:
        del p2["rot"]   
    if 'r' not in p2:
        p2["r"] = 5 
    tl = copy.deepcopy(p2)
    tr = copy.deepcopy(p2)
    bl = copy.deepcopy(p2)
    br = copy.deepcopy(p2)
    tl["pos"][0] = -(p2["size"][0] - p2["r"]*2)/2
    tl["pos"][1] = (p2["size"][1] - p2["r"]*2)/2
    tr["pos"][0] = (p2["size"][0] - p2["r"]*2)/2
    tr["pos"][1] = (p2["size"][1] - p2["r"]*2)/2
    bl["pos"][0] = -(p2["size"][0] - p2["r"]*2)/2
    bl["pos"][1] = -(p2["size"][1] - p2["r"]*2)/2
    br["pos"][0] = (p2["size"][0] - p2["r"]*2)/2
    br["pos"][1] = -(p2["size"][1] - p2["r"]*2)/2
    del tl["size"]
    del tr["size"]
    del bl["size"]
    del br["size"]
    tlo = get_opsc_item(tl)
    tro = get_opsc_item(tr)
    blo = get_opsc_item(bl)
    bro = get_opsc_item(br)    
    return hull()(tlo, tro, blo, bro)



def import_scad_object(filename):
    # Import the .scad file and convert it to a solidpython object
    #filename = "parts"
    obj = import_scad(filename)
    return obj.main()
    


import os
import solid as solidpython

# A dictionary to store the defined objects


def load_scad_objects():
    opsc_library_gen.gen_library(defined_objects)

import random

def test(num_objects):
    objects = []
    for i in range(num_objects):
        # Choose a random shape
        #shape = random.choice(['cube', 'sphere', 'cylinder', 'hole', 'slot', "rounded_rectangle"])
        shape = random.choice(["rounded_rectangle"])

        # Choose a random type
        type = random.choice(['positive', 'negative'])
        
        # Create an empty object dictionary
        obj = {'shape': shape, 'type': type}
        
        # Set shape-specific parameters
        if obj['shape'] in ['cube']:
            obj['size'] =  [random.uniform(5, 15), random.uniform(5, 15), random.uniform(5, 15)]
        if obj['shape'] in ['rounded_rectangle']:
            obj['size'] =  [random.uniform(5, 15), random.uniform(5, 15), random.uniform(5, 15)]
            obj['r'] = random.uniform(0.5, 5)
        elif obj['shape'] == 'sphere':
            obj['r'] = random.uniform(5, 15)
        elif obj['shape'] in ['cylinder', 'hole']:
            obj['r'] = random.uniform(0.5, 5)
            obj['h'] = random.uniform(5, 15)
        elif obj['shape'] == 'slot':
            obj['r'] = random.uniform(0.5, 5)
            obj['h'] = random.uniform(5, 15)
            obj['w'] = random.uniform(5, 15)
        
        # Set a random position and rotation
        obj['pos'] = [random.uniform(-20, 20), random.uniform(-20, 20), random.uniform(-20, 20)]
        obj['rot'] = [random.uniform(-180, 180), random.uniform(-180, 180), random.uniform(-180, 180)]
        
        # Add the object to the list
        objects.append(obj)
    return objects

####### old file saving
def saveToAll(fileIn):
    saveToDxf(fileIn)
    saveToPng(fileIn)
    saveToStl(fileIn)
    saveToSvg(fileIn)

def saveToDxf(fileIn, fileOut="", copy_to_laser=True):
    if fileOut == "":
        fileOut = fileIn.replace(".scad",".dxf")
    saveToFile(fileIn, fileOut)


    
def saveToPng(fileIn, fileOut="",extra="--render"):
    if fileOut == "":
        fileOut = fileIn.replace(".scad",".png")
    saveToFile(fileIn, fileOut)

def saveToStl(fileIn, fileOut=""):
    if fileOut == "":
        fileOut = fileIn.replace(".scad",".stl")
    saveToFile(fileIn, fileOut)
    
def saveToSvg(fileIn, fileOut=""):
    if fileOut == "":
        fileOut = fileIn.replace(".scad",".svg")
    saveToFile(fileIn, fileOut)

def saveToFile(fileIn, fileOut,extra=""):
    #extra = extra + " --colorscheme Tomorrow"

    launchStr = 'openscad -o "' + fileOut + '"' + extra + ' "' + fileIn + '"'
    if ".png" in fileOut:
        launchStr = launchStr + " --render"
    print("            saveToFile launch string: " + launchStr)
    subprocess.run(launchStr)
    x=0

def getLaser(final_object,start=1.5,layers=1,thickness=3,tilediff=200):
        rv= []

        for x in range(layers):
            rv.append(translate([0,x*tilediff,0])(
                    projection()(
                        intersection()(translate([-500,-500,start+x*thickness])(cube(size=[1000,1000,0.1])),
                            final_object
                        )
                    )
            )
            )
            
        return union()(rv)

set_mode("laser")
load_scad_objects() 
 
************************************************/
